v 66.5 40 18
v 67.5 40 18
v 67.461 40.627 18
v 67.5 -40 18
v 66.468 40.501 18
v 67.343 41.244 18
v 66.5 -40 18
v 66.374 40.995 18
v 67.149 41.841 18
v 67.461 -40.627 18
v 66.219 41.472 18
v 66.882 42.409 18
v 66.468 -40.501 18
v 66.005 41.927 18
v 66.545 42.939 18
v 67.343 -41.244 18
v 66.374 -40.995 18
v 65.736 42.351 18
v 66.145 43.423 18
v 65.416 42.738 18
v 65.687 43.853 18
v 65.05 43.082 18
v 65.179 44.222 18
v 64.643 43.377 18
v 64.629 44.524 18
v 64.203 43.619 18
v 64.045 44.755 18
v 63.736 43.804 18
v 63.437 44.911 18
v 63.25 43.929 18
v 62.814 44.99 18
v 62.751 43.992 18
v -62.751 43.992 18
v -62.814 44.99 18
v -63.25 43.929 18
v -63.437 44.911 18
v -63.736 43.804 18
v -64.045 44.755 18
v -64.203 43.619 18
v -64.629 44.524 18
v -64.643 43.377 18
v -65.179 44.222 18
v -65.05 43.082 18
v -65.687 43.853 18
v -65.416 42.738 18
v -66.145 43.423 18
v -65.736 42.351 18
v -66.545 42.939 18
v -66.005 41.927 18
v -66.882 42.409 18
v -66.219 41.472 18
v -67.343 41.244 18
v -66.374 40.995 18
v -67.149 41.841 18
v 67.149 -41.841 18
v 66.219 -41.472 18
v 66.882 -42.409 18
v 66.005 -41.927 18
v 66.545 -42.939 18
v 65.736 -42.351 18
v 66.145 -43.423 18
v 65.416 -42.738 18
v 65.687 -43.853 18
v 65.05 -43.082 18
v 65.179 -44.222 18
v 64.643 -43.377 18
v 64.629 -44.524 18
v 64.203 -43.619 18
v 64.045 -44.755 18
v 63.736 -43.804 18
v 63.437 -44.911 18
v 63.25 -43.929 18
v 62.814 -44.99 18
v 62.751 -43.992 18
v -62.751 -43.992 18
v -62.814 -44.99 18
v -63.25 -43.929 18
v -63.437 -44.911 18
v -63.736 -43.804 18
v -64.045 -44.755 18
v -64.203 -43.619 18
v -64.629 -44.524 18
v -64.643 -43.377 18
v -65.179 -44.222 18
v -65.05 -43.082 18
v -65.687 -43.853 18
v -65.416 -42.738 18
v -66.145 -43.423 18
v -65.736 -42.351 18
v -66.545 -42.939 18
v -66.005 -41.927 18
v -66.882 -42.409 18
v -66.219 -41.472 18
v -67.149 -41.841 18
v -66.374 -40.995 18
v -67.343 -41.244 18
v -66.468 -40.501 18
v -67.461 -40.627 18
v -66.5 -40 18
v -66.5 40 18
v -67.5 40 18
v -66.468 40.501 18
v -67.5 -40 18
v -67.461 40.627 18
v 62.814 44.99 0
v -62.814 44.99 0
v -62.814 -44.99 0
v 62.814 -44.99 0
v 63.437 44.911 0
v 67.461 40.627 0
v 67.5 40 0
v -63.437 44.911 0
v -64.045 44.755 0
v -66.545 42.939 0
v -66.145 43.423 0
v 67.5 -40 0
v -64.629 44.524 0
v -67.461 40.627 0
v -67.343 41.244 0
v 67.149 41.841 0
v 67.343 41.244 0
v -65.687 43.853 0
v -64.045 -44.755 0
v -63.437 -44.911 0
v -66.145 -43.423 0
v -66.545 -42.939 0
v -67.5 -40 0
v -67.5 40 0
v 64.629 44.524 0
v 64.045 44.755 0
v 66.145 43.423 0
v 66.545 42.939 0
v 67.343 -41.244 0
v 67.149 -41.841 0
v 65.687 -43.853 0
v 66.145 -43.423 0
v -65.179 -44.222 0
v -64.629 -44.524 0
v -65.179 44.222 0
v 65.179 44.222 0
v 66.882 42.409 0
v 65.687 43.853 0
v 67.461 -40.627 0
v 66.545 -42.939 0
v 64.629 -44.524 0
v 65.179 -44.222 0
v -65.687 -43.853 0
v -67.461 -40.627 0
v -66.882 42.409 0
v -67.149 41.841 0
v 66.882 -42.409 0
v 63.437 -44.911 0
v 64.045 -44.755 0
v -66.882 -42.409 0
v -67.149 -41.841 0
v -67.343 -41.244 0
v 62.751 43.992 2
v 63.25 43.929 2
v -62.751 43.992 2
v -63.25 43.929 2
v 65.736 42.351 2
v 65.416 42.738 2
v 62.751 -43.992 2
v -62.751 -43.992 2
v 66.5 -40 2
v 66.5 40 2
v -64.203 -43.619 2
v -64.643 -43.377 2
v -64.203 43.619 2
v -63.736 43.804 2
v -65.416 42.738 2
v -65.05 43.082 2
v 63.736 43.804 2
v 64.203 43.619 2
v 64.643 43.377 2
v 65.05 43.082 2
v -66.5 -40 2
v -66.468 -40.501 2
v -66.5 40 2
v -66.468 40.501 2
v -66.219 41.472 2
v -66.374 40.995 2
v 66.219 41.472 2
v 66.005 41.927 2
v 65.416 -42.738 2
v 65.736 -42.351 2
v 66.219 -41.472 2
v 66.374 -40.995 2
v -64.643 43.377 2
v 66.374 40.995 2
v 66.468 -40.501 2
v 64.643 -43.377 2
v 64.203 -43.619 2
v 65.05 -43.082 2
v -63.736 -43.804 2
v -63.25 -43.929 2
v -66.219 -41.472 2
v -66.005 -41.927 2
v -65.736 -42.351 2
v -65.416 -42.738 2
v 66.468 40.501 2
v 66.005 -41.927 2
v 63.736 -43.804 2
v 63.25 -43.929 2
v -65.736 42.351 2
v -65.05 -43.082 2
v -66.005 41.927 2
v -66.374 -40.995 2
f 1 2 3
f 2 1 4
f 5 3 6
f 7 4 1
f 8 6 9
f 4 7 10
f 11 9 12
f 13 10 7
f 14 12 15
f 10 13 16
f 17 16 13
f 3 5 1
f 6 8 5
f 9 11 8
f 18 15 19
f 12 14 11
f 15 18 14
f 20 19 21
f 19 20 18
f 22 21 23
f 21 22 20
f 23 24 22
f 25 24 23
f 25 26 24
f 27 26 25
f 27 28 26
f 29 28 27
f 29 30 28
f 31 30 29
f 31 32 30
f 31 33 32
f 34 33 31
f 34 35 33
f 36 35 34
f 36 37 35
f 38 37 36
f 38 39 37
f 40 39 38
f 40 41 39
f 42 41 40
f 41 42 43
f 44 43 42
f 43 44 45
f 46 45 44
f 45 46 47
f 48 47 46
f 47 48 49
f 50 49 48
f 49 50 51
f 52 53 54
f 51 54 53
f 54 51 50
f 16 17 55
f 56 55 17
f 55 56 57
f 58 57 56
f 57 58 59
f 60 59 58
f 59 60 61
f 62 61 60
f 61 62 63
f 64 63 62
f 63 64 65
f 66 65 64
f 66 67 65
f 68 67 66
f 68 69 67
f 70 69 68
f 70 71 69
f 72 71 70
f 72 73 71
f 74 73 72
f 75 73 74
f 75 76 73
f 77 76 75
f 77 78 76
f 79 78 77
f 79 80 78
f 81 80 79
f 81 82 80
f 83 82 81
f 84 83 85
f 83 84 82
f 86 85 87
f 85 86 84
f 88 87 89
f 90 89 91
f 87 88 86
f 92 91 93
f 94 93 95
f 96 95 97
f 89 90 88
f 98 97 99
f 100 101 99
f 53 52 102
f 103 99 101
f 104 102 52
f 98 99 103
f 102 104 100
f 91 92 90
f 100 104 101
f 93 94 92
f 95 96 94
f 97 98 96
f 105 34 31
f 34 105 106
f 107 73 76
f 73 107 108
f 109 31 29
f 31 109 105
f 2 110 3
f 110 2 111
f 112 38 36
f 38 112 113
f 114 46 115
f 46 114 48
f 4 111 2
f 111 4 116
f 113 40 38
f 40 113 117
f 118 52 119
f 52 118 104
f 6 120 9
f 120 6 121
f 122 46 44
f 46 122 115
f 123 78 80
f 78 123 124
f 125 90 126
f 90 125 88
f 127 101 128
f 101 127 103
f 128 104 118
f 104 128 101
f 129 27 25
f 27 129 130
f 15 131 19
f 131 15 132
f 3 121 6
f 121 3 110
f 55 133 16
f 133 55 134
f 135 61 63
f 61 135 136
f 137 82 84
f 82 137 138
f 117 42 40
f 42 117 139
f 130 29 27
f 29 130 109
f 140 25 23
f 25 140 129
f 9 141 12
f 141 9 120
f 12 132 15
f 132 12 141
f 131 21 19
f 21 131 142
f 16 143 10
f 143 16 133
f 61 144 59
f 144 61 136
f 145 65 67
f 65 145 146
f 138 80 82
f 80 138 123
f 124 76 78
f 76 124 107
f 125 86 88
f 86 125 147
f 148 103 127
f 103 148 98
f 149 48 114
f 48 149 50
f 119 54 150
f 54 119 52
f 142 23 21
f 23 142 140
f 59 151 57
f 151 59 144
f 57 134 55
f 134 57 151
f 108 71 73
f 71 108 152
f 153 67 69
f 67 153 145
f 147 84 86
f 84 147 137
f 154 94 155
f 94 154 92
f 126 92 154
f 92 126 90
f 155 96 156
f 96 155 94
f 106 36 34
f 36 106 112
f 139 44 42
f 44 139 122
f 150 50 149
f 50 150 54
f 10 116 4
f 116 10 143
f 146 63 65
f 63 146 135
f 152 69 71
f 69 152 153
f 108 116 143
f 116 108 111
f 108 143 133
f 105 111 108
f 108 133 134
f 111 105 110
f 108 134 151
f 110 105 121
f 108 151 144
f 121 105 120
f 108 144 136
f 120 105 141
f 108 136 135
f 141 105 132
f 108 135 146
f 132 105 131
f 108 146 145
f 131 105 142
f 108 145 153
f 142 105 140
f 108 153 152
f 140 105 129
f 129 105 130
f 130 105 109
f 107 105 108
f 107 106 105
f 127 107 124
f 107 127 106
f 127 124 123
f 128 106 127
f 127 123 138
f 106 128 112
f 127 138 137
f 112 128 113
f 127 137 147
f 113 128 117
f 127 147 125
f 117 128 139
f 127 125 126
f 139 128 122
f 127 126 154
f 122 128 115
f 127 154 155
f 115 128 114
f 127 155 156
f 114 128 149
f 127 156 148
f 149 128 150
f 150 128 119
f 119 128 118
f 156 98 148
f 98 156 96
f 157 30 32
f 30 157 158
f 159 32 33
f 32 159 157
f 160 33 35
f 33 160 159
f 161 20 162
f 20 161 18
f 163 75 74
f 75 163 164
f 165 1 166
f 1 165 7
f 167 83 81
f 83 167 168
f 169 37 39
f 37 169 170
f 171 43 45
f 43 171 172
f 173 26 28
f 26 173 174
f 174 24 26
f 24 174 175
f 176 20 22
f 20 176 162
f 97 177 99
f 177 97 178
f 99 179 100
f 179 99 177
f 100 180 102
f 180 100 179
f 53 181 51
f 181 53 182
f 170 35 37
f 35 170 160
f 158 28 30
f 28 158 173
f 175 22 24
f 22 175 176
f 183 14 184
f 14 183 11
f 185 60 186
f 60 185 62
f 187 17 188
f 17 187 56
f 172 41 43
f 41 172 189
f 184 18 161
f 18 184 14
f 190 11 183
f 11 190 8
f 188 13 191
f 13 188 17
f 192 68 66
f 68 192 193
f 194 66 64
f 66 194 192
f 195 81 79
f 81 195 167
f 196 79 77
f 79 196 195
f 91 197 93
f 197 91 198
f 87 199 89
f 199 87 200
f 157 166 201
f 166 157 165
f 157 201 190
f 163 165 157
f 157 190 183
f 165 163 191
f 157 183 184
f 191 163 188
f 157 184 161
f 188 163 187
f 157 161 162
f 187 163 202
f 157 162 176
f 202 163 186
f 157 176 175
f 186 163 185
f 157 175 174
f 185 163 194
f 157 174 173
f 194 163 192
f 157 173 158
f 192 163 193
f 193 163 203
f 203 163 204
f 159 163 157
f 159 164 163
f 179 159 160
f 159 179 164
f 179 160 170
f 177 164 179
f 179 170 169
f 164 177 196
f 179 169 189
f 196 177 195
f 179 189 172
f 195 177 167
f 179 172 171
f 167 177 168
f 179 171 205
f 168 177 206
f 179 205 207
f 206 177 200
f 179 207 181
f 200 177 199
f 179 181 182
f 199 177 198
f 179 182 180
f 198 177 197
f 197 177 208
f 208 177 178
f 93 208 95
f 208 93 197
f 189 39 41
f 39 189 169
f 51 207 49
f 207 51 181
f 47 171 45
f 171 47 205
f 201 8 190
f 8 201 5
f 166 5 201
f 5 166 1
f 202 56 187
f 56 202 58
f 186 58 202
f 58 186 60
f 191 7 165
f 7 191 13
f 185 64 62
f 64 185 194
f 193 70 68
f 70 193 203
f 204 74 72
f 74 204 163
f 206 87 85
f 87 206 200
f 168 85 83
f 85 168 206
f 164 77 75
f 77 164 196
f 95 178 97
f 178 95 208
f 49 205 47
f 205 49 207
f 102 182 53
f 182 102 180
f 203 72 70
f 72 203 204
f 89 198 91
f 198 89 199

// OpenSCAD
$fn = 50;


difference() {
	union() {
		hull() {
			translate(v = [-62.5000000000, 40.0000000000, 0]) {
				cylinder(h = 18, r = 5);
			}
			translate(v = [62.5000000000, 40.0000000000, 0]) {
				cylinder(h = 18, r = 5);
			}
			translate(v = [-62.5000000000, -40.0000000000, 0]) {
				cylinder(h = 18, r = 5);
			}
			translate(v = [62.5000000000, -40.0000000000, 0]) {
				cylinder(h = 18, r = 5);
			}
		}
	}
	union() {
		translate(v = [0, 0, 2]) {
			hull() {
				translate(v = [-62.5000000000, 40.0000000000, 0]) {
					cylinder(h = 16, r = 4);
				}
				translate(v = [62.5000000000, 40.0000000000, 0]) {
					cylinder(h = 16, r = 4);
				}
				translate(v = [-62.5000000000, -40.0000000000, 0]) {
					cylinder(h = 16, r = 4);
				}
				translate(v = [62.5000000000, -40.0000000000, 0]) {
					cylinder(h = 16, r = 4);
				}
			}
		}
	}
}
